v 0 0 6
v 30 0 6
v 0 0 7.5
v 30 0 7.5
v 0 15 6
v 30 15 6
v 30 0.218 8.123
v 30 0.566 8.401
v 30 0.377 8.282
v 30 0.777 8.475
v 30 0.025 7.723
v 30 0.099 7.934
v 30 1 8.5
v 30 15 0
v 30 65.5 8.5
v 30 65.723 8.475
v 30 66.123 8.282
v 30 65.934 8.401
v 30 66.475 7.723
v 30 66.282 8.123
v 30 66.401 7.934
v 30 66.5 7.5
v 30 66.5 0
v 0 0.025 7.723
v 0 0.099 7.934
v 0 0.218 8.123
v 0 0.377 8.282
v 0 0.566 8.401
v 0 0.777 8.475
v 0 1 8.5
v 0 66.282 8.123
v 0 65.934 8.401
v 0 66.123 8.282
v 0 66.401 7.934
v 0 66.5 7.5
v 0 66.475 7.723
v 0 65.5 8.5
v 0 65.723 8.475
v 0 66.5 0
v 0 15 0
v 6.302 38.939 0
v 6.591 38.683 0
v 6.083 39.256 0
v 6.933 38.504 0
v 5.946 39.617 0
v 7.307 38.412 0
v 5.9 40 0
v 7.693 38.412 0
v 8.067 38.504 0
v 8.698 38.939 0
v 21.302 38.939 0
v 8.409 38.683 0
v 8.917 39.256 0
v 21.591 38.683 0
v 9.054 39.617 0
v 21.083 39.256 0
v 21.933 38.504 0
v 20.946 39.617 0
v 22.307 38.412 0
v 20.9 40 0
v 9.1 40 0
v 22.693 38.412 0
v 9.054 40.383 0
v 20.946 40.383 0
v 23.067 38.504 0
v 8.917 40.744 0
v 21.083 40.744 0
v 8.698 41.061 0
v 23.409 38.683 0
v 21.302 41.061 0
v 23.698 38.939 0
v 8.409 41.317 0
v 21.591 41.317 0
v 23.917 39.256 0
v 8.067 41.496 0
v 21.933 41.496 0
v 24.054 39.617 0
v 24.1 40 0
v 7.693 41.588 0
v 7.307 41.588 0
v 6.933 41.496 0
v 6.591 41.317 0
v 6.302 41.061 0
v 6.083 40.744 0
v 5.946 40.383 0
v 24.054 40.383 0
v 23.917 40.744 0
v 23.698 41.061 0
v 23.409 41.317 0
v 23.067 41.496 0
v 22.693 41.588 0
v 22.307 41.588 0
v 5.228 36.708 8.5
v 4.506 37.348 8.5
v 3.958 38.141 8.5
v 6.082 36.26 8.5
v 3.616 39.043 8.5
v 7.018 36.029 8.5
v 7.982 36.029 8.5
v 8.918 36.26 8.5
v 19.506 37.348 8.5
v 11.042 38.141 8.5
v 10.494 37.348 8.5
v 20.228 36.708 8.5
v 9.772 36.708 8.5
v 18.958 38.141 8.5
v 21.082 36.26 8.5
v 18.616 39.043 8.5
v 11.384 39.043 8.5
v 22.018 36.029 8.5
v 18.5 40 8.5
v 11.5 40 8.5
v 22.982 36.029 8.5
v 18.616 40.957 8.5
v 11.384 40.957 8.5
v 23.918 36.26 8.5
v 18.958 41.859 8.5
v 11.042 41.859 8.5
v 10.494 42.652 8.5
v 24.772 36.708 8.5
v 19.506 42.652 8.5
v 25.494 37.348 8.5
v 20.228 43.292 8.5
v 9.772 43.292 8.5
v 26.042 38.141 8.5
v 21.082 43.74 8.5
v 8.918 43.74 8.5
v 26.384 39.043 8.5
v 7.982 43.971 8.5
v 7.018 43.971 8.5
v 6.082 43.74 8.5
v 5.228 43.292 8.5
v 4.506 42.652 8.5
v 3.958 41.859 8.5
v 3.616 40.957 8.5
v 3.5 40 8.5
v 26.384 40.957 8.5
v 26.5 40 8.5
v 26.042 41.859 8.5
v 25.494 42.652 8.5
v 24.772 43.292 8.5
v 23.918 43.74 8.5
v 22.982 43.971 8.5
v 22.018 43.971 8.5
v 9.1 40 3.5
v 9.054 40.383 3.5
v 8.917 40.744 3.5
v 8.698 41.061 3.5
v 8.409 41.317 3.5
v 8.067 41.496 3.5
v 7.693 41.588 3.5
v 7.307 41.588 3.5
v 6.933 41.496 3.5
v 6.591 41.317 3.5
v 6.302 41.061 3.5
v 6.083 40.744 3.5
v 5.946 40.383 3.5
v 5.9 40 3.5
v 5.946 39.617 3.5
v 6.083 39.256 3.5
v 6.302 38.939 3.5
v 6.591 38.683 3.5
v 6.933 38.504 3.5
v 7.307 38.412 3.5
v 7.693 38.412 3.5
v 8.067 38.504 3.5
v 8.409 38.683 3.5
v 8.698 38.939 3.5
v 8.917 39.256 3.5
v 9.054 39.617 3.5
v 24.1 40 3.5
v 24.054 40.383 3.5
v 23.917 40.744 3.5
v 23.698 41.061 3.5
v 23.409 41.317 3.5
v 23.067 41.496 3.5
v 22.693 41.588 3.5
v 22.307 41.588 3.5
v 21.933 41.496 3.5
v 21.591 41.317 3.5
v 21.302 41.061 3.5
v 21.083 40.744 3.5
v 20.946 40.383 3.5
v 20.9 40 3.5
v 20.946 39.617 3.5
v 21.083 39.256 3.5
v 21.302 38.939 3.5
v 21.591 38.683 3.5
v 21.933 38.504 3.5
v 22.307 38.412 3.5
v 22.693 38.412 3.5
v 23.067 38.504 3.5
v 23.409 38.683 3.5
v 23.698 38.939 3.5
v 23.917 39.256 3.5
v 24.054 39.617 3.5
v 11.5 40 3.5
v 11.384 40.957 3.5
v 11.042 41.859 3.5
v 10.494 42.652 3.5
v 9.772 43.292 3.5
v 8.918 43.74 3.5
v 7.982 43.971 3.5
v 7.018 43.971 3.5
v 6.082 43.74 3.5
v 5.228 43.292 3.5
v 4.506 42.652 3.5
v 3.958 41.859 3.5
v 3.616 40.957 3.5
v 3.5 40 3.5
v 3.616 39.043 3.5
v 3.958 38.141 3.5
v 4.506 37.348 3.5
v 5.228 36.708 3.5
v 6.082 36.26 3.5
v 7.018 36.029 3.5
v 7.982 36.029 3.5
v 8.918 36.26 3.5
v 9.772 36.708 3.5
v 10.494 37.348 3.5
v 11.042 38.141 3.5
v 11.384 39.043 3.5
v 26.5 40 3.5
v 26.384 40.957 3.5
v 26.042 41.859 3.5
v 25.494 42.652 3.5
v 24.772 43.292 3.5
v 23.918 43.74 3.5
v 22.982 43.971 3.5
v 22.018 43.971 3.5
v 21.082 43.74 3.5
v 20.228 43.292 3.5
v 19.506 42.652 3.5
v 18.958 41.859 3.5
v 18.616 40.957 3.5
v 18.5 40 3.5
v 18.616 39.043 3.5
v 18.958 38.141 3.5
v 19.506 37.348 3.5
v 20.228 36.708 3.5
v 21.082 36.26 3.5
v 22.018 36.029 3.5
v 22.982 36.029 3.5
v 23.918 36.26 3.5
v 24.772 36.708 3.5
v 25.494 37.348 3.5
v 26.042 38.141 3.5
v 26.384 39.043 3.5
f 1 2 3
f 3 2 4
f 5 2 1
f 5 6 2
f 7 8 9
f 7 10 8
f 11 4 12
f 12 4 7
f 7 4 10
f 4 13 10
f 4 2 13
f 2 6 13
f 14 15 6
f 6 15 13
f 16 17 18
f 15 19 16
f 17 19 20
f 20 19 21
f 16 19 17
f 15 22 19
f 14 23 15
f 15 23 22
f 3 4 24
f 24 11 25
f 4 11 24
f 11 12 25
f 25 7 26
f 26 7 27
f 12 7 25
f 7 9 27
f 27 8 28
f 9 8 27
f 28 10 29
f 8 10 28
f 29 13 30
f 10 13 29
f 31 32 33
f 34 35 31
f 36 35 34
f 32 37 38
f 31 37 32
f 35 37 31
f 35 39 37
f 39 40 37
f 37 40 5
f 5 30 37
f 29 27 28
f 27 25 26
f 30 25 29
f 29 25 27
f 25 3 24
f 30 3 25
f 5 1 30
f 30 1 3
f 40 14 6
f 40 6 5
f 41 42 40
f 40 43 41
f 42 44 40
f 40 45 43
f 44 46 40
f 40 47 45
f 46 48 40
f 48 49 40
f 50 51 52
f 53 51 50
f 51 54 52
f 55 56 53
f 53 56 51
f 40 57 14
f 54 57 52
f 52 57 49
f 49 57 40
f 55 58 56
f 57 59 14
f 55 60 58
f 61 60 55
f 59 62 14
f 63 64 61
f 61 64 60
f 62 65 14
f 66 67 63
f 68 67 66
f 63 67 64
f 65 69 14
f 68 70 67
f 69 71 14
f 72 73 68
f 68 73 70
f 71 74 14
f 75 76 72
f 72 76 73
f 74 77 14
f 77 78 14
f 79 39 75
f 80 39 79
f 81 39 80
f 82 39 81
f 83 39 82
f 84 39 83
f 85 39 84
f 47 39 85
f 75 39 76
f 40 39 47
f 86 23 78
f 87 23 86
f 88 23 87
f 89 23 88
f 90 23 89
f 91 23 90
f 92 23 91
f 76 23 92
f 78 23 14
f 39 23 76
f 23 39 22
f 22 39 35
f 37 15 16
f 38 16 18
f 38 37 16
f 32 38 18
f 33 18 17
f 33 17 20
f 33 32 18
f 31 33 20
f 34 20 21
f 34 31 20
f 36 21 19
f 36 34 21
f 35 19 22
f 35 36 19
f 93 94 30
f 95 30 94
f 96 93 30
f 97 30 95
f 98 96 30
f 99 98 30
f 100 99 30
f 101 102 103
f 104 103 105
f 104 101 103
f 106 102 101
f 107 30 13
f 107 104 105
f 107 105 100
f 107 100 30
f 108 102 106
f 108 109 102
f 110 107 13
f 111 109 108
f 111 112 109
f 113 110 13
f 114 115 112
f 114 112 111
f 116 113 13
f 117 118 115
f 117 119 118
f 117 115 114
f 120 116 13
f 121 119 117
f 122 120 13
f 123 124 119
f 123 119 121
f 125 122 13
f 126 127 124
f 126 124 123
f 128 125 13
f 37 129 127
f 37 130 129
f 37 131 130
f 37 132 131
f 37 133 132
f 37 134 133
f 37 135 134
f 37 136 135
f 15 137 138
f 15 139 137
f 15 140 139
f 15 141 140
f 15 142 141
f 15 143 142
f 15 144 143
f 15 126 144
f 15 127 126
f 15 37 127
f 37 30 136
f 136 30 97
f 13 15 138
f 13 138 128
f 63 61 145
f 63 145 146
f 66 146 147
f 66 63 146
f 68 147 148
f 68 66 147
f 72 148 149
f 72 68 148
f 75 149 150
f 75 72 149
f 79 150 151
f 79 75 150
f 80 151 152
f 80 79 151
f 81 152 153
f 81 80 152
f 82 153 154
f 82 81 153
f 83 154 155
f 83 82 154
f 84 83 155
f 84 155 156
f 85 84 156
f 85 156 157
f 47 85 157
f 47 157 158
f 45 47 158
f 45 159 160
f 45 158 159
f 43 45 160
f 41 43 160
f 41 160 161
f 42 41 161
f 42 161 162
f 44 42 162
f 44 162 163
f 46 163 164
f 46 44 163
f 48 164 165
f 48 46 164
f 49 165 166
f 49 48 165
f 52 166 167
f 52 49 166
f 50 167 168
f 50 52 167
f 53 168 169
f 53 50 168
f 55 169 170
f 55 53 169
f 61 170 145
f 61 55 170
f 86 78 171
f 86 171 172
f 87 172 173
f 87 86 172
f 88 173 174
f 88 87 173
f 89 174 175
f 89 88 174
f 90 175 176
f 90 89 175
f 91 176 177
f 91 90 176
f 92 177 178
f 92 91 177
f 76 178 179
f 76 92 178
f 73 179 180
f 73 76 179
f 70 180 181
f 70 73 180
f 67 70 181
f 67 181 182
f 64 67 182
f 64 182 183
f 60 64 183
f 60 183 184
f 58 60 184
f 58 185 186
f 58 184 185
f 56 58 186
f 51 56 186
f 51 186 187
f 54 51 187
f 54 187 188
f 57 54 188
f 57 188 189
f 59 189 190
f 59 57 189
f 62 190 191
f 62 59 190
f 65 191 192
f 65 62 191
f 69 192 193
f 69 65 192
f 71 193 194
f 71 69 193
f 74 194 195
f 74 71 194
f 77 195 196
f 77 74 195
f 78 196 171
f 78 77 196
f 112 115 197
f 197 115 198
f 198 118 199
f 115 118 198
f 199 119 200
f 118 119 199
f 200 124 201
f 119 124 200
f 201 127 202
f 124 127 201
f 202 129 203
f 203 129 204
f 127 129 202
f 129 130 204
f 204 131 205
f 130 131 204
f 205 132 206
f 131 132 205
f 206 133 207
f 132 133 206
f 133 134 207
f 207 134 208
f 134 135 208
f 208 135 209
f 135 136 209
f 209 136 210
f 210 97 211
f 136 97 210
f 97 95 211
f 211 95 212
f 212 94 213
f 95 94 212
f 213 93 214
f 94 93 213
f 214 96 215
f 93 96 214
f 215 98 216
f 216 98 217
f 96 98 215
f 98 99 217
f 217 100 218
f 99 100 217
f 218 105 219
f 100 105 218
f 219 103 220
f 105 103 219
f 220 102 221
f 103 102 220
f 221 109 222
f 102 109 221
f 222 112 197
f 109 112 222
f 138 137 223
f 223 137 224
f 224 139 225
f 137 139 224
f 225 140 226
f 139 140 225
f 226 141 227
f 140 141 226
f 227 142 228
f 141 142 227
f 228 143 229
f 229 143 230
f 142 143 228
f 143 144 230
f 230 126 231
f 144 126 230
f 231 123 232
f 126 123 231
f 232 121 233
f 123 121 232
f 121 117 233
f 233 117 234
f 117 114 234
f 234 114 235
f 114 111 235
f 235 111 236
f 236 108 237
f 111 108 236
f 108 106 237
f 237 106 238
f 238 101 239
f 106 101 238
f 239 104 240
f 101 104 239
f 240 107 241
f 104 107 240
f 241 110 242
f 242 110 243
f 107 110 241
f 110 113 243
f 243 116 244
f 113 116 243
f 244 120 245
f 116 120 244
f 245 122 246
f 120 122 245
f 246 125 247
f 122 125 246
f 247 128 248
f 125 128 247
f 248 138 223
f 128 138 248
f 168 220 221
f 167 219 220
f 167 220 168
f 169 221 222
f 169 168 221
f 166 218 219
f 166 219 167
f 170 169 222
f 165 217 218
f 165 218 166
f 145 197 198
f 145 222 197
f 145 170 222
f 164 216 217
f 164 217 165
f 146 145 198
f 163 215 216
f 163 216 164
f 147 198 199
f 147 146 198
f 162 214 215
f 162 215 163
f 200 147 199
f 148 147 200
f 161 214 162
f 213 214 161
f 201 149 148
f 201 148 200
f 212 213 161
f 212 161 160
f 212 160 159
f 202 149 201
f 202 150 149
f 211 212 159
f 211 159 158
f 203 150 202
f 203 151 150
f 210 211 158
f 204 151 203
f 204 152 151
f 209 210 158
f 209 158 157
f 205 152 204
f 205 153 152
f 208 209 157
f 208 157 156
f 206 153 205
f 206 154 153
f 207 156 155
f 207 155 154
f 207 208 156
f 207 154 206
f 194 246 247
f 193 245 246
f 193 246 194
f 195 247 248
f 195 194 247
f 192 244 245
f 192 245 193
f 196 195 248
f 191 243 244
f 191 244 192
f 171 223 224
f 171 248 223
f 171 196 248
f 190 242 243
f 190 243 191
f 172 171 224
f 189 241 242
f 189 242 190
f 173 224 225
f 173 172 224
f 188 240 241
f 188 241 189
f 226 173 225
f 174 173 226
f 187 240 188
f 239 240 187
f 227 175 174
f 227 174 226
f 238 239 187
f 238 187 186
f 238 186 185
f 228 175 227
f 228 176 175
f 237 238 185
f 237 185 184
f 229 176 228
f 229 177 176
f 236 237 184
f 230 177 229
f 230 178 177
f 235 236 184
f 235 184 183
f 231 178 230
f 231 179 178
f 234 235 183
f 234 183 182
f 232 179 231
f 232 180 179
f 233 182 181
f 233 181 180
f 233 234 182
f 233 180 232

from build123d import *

# Parameters (mm, degrees)
SKETCH_W        = 30
SKETCH_H        = 66.5
SKETCH_R        = 1.6
PAD_DEPTH       = 8.5
SKETCH001_R     = 4
POCKET_DEPTH    = 5
FILLET_R        = 1
SKETCH002_W     = 55.163057
SKETCH002_H     = 21.780855
POCKET001_DEPTH = 6


with BuildPart() as part:
    # Sketch → Pad (new body)
    with BuildSketch(Plane.XY):
        with Locations((15, 33.25)):
            Rectangle(SKETCH_W, SKETCH_H)
        with Locations((7.5, 40)):
            Circle(SKETCH_R, mode=Mode.SUBTRACT)
        with Locations((22.5, 40)):
            Circle(SKETCH_R, mode=Mode.SUBTRACT)
    extrude(amount=PAD_DEPTH)

    # Sketch001 (on Face8 of Pad) → Pocket (cut)
    with BuildSketch(Plane.XY.offset(8.5)):
        with Locations((7.5, 40)):
            Circle(SKETCH001_R)
        with Locations((22.5, 40)):
            Circle(SKETCH001_R)
    extrude(amount=-POCKET_DEPTH, mode=Mode.SUBTRACT)

    # Fillet
    fillet_edges = [part.edges().sort_by_distance(p)[0] for p in [
        (15, 66.5, 8.5),
        (15, 0, 8.5),
    ]]
    fillet(fillet_edges, radius=FILLET_R)

    # Sketch002 (on Face4 of Fillet) → Pocket001 (cut)
    with BuildSketch(Plane(origin=(0, 0, 0), x_dir=(1, 0, 0), z_dir=(0, 0, -1))):
        with Locations((18.565501, -4.109573)):
            Rectangle(SKETCH002_W, SKETCH002_H)
    extrude(amount=-POCKET001_DEPTH, mode=Mode.SUBTRACT)


solid = part.part
